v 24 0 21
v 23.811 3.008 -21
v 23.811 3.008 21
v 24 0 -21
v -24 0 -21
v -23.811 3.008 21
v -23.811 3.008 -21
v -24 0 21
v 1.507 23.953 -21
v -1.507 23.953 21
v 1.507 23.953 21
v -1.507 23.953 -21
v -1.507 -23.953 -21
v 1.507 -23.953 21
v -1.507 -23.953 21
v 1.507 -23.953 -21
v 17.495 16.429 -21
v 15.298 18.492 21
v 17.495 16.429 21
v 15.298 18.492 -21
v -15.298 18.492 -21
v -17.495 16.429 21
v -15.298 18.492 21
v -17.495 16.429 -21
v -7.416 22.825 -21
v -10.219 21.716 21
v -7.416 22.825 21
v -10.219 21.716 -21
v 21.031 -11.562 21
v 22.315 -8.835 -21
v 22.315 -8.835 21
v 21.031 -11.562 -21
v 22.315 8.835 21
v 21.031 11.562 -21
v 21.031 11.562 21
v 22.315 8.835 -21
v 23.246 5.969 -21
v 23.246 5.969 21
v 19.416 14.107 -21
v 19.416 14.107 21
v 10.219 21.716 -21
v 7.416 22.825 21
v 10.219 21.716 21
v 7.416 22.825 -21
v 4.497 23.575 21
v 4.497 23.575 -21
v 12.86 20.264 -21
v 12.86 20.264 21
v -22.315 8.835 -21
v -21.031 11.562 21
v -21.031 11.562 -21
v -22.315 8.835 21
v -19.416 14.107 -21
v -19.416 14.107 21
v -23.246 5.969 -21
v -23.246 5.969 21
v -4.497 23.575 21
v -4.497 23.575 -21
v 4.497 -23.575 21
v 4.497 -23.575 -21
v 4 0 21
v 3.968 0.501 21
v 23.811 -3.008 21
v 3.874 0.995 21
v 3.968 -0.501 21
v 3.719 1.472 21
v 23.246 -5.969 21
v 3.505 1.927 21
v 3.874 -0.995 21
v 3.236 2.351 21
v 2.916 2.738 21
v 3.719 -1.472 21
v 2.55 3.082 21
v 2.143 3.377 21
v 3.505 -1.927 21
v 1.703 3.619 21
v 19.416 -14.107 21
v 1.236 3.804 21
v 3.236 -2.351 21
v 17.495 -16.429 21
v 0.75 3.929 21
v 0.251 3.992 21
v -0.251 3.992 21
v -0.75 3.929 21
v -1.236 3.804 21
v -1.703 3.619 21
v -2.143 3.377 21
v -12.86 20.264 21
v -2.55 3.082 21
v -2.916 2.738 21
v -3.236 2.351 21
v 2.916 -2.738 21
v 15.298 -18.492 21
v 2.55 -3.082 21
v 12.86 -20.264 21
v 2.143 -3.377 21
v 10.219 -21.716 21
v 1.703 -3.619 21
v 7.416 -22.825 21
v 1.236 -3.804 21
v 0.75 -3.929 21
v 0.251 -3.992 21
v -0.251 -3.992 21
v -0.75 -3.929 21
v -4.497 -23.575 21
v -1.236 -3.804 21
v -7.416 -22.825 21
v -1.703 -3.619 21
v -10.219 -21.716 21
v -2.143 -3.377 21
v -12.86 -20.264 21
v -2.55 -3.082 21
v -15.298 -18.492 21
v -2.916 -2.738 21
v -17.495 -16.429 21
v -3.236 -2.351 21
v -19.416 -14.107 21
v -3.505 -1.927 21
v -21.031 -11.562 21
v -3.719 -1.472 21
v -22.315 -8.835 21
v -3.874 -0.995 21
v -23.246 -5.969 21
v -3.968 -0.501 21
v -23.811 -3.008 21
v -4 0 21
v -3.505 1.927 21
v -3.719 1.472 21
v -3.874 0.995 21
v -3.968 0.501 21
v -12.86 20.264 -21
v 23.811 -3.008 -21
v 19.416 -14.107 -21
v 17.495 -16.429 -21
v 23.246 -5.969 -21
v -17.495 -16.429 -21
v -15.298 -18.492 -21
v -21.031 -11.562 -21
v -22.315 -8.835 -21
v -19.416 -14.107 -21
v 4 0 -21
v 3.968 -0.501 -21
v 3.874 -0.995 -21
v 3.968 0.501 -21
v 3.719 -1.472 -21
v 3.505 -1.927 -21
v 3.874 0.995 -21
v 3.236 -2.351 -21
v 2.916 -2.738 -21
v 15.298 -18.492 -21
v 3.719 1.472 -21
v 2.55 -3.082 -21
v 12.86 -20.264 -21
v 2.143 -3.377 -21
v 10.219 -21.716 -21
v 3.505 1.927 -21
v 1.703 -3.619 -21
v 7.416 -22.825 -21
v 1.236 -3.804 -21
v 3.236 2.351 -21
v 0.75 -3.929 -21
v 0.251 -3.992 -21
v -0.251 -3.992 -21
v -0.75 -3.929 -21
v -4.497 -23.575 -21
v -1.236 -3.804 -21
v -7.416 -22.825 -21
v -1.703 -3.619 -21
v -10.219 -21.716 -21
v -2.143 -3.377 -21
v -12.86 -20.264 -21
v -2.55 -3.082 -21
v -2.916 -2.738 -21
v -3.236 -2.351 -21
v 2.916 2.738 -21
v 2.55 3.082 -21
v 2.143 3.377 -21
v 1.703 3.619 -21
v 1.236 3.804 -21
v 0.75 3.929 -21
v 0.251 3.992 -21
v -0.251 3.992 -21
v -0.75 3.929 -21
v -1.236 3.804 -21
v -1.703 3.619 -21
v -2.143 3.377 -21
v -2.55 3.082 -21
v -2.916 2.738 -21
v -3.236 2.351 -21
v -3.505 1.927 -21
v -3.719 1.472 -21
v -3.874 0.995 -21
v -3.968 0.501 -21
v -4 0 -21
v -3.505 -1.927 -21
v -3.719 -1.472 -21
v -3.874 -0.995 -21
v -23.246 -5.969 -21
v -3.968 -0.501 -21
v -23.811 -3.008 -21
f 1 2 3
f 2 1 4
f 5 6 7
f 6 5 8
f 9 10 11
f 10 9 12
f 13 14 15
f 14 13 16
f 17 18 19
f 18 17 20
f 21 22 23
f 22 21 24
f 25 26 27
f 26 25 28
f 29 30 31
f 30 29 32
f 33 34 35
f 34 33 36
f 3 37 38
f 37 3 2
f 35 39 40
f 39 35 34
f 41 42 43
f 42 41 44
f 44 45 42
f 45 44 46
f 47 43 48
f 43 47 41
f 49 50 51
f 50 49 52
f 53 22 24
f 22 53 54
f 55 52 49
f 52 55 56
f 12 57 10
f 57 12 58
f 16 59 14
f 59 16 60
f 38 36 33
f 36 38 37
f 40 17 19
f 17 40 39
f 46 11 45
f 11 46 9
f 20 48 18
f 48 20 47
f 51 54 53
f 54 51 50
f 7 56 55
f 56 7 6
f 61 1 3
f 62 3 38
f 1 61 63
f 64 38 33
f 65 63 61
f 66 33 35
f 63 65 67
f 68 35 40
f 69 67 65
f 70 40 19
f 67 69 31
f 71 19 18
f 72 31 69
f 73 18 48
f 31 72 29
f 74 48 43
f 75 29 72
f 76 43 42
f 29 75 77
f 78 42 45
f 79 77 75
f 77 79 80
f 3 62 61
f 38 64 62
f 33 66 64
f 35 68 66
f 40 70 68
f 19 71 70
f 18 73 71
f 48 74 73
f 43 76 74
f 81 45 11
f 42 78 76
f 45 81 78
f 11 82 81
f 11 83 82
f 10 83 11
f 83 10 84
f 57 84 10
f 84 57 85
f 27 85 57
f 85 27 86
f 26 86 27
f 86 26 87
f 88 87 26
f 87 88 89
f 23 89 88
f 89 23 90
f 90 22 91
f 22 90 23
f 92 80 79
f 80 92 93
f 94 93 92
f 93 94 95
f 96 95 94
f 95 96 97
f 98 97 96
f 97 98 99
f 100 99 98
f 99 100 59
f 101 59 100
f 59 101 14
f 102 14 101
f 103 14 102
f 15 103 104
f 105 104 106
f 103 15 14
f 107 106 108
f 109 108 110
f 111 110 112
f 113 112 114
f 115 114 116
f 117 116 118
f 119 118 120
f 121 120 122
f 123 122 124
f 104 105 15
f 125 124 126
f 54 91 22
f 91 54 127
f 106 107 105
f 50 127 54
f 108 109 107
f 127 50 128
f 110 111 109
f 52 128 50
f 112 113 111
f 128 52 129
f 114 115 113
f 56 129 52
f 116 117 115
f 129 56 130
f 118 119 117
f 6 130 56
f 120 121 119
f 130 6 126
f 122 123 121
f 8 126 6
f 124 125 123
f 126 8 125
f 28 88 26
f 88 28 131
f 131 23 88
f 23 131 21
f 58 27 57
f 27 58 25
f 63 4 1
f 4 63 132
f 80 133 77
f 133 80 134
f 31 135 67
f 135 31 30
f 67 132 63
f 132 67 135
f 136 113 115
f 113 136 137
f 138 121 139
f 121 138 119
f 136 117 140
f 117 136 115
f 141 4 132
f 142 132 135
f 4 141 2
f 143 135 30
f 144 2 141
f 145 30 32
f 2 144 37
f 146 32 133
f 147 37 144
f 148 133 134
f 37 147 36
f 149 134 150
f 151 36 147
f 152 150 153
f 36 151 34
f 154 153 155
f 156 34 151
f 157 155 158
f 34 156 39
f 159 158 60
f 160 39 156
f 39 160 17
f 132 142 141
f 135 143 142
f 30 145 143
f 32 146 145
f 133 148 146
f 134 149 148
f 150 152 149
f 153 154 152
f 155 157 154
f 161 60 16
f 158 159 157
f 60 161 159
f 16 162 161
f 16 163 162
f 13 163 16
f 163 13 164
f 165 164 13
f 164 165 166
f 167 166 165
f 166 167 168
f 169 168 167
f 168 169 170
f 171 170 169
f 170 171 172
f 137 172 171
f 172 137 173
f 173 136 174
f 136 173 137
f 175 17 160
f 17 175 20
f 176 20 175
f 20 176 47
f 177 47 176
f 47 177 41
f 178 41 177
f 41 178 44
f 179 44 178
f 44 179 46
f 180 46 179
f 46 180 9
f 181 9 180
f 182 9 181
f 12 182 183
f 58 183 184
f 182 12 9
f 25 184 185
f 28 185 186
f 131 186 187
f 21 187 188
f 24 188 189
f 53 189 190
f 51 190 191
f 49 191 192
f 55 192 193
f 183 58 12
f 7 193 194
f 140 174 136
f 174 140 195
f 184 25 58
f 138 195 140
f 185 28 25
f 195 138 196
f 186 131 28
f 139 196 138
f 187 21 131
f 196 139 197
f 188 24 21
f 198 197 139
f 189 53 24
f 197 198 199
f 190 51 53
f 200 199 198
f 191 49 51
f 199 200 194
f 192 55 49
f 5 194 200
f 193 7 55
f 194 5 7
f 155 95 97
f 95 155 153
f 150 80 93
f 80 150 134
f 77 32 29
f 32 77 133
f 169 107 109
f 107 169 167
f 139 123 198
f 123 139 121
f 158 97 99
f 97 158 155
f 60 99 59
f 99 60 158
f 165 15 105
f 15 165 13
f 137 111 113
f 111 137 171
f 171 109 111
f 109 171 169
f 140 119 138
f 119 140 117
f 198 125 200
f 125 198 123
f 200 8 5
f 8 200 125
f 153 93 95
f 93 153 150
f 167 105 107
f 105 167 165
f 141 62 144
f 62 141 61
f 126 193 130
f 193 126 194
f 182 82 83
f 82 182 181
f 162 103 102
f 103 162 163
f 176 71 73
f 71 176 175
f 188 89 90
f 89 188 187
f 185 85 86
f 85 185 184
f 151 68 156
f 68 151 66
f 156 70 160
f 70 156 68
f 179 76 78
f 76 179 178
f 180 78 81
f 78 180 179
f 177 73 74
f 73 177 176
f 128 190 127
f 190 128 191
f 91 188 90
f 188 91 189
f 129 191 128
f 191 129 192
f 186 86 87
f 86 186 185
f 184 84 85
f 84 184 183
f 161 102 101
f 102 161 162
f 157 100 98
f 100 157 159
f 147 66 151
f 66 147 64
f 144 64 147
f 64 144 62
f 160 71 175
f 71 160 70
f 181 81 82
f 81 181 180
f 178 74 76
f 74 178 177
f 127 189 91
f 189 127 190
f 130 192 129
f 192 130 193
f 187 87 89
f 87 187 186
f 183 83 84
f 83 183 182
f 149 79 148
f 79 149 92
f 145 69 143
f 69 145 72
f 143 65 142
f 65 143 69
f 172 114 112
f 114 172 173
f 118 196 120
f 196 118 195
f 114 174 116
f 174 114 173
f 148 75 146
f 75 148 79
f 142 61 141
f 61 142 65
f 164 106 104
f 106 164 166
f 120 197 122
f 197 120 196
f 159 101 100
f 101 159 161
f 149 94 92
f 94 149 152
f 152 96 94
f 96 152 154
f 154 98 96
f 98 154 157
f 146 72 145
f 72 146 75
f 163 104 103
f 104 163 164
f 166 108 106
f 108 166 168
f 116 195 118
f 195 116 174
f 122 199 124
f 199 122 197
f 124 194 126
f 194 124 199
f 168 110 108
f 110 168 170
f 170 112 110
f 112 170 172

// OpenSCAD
$fn = 50;


difference() {
	union() {
		translate(v = [0, 0, -21.0000000000]) {
			cylinder(h = 42, r = 24.0000000000);
		}
	}
	union() {
		translate(v = [0, 0, -100.0000000000]) {
			cylinder(h = 200, r = 4.0000000000);
		}
	}
}
